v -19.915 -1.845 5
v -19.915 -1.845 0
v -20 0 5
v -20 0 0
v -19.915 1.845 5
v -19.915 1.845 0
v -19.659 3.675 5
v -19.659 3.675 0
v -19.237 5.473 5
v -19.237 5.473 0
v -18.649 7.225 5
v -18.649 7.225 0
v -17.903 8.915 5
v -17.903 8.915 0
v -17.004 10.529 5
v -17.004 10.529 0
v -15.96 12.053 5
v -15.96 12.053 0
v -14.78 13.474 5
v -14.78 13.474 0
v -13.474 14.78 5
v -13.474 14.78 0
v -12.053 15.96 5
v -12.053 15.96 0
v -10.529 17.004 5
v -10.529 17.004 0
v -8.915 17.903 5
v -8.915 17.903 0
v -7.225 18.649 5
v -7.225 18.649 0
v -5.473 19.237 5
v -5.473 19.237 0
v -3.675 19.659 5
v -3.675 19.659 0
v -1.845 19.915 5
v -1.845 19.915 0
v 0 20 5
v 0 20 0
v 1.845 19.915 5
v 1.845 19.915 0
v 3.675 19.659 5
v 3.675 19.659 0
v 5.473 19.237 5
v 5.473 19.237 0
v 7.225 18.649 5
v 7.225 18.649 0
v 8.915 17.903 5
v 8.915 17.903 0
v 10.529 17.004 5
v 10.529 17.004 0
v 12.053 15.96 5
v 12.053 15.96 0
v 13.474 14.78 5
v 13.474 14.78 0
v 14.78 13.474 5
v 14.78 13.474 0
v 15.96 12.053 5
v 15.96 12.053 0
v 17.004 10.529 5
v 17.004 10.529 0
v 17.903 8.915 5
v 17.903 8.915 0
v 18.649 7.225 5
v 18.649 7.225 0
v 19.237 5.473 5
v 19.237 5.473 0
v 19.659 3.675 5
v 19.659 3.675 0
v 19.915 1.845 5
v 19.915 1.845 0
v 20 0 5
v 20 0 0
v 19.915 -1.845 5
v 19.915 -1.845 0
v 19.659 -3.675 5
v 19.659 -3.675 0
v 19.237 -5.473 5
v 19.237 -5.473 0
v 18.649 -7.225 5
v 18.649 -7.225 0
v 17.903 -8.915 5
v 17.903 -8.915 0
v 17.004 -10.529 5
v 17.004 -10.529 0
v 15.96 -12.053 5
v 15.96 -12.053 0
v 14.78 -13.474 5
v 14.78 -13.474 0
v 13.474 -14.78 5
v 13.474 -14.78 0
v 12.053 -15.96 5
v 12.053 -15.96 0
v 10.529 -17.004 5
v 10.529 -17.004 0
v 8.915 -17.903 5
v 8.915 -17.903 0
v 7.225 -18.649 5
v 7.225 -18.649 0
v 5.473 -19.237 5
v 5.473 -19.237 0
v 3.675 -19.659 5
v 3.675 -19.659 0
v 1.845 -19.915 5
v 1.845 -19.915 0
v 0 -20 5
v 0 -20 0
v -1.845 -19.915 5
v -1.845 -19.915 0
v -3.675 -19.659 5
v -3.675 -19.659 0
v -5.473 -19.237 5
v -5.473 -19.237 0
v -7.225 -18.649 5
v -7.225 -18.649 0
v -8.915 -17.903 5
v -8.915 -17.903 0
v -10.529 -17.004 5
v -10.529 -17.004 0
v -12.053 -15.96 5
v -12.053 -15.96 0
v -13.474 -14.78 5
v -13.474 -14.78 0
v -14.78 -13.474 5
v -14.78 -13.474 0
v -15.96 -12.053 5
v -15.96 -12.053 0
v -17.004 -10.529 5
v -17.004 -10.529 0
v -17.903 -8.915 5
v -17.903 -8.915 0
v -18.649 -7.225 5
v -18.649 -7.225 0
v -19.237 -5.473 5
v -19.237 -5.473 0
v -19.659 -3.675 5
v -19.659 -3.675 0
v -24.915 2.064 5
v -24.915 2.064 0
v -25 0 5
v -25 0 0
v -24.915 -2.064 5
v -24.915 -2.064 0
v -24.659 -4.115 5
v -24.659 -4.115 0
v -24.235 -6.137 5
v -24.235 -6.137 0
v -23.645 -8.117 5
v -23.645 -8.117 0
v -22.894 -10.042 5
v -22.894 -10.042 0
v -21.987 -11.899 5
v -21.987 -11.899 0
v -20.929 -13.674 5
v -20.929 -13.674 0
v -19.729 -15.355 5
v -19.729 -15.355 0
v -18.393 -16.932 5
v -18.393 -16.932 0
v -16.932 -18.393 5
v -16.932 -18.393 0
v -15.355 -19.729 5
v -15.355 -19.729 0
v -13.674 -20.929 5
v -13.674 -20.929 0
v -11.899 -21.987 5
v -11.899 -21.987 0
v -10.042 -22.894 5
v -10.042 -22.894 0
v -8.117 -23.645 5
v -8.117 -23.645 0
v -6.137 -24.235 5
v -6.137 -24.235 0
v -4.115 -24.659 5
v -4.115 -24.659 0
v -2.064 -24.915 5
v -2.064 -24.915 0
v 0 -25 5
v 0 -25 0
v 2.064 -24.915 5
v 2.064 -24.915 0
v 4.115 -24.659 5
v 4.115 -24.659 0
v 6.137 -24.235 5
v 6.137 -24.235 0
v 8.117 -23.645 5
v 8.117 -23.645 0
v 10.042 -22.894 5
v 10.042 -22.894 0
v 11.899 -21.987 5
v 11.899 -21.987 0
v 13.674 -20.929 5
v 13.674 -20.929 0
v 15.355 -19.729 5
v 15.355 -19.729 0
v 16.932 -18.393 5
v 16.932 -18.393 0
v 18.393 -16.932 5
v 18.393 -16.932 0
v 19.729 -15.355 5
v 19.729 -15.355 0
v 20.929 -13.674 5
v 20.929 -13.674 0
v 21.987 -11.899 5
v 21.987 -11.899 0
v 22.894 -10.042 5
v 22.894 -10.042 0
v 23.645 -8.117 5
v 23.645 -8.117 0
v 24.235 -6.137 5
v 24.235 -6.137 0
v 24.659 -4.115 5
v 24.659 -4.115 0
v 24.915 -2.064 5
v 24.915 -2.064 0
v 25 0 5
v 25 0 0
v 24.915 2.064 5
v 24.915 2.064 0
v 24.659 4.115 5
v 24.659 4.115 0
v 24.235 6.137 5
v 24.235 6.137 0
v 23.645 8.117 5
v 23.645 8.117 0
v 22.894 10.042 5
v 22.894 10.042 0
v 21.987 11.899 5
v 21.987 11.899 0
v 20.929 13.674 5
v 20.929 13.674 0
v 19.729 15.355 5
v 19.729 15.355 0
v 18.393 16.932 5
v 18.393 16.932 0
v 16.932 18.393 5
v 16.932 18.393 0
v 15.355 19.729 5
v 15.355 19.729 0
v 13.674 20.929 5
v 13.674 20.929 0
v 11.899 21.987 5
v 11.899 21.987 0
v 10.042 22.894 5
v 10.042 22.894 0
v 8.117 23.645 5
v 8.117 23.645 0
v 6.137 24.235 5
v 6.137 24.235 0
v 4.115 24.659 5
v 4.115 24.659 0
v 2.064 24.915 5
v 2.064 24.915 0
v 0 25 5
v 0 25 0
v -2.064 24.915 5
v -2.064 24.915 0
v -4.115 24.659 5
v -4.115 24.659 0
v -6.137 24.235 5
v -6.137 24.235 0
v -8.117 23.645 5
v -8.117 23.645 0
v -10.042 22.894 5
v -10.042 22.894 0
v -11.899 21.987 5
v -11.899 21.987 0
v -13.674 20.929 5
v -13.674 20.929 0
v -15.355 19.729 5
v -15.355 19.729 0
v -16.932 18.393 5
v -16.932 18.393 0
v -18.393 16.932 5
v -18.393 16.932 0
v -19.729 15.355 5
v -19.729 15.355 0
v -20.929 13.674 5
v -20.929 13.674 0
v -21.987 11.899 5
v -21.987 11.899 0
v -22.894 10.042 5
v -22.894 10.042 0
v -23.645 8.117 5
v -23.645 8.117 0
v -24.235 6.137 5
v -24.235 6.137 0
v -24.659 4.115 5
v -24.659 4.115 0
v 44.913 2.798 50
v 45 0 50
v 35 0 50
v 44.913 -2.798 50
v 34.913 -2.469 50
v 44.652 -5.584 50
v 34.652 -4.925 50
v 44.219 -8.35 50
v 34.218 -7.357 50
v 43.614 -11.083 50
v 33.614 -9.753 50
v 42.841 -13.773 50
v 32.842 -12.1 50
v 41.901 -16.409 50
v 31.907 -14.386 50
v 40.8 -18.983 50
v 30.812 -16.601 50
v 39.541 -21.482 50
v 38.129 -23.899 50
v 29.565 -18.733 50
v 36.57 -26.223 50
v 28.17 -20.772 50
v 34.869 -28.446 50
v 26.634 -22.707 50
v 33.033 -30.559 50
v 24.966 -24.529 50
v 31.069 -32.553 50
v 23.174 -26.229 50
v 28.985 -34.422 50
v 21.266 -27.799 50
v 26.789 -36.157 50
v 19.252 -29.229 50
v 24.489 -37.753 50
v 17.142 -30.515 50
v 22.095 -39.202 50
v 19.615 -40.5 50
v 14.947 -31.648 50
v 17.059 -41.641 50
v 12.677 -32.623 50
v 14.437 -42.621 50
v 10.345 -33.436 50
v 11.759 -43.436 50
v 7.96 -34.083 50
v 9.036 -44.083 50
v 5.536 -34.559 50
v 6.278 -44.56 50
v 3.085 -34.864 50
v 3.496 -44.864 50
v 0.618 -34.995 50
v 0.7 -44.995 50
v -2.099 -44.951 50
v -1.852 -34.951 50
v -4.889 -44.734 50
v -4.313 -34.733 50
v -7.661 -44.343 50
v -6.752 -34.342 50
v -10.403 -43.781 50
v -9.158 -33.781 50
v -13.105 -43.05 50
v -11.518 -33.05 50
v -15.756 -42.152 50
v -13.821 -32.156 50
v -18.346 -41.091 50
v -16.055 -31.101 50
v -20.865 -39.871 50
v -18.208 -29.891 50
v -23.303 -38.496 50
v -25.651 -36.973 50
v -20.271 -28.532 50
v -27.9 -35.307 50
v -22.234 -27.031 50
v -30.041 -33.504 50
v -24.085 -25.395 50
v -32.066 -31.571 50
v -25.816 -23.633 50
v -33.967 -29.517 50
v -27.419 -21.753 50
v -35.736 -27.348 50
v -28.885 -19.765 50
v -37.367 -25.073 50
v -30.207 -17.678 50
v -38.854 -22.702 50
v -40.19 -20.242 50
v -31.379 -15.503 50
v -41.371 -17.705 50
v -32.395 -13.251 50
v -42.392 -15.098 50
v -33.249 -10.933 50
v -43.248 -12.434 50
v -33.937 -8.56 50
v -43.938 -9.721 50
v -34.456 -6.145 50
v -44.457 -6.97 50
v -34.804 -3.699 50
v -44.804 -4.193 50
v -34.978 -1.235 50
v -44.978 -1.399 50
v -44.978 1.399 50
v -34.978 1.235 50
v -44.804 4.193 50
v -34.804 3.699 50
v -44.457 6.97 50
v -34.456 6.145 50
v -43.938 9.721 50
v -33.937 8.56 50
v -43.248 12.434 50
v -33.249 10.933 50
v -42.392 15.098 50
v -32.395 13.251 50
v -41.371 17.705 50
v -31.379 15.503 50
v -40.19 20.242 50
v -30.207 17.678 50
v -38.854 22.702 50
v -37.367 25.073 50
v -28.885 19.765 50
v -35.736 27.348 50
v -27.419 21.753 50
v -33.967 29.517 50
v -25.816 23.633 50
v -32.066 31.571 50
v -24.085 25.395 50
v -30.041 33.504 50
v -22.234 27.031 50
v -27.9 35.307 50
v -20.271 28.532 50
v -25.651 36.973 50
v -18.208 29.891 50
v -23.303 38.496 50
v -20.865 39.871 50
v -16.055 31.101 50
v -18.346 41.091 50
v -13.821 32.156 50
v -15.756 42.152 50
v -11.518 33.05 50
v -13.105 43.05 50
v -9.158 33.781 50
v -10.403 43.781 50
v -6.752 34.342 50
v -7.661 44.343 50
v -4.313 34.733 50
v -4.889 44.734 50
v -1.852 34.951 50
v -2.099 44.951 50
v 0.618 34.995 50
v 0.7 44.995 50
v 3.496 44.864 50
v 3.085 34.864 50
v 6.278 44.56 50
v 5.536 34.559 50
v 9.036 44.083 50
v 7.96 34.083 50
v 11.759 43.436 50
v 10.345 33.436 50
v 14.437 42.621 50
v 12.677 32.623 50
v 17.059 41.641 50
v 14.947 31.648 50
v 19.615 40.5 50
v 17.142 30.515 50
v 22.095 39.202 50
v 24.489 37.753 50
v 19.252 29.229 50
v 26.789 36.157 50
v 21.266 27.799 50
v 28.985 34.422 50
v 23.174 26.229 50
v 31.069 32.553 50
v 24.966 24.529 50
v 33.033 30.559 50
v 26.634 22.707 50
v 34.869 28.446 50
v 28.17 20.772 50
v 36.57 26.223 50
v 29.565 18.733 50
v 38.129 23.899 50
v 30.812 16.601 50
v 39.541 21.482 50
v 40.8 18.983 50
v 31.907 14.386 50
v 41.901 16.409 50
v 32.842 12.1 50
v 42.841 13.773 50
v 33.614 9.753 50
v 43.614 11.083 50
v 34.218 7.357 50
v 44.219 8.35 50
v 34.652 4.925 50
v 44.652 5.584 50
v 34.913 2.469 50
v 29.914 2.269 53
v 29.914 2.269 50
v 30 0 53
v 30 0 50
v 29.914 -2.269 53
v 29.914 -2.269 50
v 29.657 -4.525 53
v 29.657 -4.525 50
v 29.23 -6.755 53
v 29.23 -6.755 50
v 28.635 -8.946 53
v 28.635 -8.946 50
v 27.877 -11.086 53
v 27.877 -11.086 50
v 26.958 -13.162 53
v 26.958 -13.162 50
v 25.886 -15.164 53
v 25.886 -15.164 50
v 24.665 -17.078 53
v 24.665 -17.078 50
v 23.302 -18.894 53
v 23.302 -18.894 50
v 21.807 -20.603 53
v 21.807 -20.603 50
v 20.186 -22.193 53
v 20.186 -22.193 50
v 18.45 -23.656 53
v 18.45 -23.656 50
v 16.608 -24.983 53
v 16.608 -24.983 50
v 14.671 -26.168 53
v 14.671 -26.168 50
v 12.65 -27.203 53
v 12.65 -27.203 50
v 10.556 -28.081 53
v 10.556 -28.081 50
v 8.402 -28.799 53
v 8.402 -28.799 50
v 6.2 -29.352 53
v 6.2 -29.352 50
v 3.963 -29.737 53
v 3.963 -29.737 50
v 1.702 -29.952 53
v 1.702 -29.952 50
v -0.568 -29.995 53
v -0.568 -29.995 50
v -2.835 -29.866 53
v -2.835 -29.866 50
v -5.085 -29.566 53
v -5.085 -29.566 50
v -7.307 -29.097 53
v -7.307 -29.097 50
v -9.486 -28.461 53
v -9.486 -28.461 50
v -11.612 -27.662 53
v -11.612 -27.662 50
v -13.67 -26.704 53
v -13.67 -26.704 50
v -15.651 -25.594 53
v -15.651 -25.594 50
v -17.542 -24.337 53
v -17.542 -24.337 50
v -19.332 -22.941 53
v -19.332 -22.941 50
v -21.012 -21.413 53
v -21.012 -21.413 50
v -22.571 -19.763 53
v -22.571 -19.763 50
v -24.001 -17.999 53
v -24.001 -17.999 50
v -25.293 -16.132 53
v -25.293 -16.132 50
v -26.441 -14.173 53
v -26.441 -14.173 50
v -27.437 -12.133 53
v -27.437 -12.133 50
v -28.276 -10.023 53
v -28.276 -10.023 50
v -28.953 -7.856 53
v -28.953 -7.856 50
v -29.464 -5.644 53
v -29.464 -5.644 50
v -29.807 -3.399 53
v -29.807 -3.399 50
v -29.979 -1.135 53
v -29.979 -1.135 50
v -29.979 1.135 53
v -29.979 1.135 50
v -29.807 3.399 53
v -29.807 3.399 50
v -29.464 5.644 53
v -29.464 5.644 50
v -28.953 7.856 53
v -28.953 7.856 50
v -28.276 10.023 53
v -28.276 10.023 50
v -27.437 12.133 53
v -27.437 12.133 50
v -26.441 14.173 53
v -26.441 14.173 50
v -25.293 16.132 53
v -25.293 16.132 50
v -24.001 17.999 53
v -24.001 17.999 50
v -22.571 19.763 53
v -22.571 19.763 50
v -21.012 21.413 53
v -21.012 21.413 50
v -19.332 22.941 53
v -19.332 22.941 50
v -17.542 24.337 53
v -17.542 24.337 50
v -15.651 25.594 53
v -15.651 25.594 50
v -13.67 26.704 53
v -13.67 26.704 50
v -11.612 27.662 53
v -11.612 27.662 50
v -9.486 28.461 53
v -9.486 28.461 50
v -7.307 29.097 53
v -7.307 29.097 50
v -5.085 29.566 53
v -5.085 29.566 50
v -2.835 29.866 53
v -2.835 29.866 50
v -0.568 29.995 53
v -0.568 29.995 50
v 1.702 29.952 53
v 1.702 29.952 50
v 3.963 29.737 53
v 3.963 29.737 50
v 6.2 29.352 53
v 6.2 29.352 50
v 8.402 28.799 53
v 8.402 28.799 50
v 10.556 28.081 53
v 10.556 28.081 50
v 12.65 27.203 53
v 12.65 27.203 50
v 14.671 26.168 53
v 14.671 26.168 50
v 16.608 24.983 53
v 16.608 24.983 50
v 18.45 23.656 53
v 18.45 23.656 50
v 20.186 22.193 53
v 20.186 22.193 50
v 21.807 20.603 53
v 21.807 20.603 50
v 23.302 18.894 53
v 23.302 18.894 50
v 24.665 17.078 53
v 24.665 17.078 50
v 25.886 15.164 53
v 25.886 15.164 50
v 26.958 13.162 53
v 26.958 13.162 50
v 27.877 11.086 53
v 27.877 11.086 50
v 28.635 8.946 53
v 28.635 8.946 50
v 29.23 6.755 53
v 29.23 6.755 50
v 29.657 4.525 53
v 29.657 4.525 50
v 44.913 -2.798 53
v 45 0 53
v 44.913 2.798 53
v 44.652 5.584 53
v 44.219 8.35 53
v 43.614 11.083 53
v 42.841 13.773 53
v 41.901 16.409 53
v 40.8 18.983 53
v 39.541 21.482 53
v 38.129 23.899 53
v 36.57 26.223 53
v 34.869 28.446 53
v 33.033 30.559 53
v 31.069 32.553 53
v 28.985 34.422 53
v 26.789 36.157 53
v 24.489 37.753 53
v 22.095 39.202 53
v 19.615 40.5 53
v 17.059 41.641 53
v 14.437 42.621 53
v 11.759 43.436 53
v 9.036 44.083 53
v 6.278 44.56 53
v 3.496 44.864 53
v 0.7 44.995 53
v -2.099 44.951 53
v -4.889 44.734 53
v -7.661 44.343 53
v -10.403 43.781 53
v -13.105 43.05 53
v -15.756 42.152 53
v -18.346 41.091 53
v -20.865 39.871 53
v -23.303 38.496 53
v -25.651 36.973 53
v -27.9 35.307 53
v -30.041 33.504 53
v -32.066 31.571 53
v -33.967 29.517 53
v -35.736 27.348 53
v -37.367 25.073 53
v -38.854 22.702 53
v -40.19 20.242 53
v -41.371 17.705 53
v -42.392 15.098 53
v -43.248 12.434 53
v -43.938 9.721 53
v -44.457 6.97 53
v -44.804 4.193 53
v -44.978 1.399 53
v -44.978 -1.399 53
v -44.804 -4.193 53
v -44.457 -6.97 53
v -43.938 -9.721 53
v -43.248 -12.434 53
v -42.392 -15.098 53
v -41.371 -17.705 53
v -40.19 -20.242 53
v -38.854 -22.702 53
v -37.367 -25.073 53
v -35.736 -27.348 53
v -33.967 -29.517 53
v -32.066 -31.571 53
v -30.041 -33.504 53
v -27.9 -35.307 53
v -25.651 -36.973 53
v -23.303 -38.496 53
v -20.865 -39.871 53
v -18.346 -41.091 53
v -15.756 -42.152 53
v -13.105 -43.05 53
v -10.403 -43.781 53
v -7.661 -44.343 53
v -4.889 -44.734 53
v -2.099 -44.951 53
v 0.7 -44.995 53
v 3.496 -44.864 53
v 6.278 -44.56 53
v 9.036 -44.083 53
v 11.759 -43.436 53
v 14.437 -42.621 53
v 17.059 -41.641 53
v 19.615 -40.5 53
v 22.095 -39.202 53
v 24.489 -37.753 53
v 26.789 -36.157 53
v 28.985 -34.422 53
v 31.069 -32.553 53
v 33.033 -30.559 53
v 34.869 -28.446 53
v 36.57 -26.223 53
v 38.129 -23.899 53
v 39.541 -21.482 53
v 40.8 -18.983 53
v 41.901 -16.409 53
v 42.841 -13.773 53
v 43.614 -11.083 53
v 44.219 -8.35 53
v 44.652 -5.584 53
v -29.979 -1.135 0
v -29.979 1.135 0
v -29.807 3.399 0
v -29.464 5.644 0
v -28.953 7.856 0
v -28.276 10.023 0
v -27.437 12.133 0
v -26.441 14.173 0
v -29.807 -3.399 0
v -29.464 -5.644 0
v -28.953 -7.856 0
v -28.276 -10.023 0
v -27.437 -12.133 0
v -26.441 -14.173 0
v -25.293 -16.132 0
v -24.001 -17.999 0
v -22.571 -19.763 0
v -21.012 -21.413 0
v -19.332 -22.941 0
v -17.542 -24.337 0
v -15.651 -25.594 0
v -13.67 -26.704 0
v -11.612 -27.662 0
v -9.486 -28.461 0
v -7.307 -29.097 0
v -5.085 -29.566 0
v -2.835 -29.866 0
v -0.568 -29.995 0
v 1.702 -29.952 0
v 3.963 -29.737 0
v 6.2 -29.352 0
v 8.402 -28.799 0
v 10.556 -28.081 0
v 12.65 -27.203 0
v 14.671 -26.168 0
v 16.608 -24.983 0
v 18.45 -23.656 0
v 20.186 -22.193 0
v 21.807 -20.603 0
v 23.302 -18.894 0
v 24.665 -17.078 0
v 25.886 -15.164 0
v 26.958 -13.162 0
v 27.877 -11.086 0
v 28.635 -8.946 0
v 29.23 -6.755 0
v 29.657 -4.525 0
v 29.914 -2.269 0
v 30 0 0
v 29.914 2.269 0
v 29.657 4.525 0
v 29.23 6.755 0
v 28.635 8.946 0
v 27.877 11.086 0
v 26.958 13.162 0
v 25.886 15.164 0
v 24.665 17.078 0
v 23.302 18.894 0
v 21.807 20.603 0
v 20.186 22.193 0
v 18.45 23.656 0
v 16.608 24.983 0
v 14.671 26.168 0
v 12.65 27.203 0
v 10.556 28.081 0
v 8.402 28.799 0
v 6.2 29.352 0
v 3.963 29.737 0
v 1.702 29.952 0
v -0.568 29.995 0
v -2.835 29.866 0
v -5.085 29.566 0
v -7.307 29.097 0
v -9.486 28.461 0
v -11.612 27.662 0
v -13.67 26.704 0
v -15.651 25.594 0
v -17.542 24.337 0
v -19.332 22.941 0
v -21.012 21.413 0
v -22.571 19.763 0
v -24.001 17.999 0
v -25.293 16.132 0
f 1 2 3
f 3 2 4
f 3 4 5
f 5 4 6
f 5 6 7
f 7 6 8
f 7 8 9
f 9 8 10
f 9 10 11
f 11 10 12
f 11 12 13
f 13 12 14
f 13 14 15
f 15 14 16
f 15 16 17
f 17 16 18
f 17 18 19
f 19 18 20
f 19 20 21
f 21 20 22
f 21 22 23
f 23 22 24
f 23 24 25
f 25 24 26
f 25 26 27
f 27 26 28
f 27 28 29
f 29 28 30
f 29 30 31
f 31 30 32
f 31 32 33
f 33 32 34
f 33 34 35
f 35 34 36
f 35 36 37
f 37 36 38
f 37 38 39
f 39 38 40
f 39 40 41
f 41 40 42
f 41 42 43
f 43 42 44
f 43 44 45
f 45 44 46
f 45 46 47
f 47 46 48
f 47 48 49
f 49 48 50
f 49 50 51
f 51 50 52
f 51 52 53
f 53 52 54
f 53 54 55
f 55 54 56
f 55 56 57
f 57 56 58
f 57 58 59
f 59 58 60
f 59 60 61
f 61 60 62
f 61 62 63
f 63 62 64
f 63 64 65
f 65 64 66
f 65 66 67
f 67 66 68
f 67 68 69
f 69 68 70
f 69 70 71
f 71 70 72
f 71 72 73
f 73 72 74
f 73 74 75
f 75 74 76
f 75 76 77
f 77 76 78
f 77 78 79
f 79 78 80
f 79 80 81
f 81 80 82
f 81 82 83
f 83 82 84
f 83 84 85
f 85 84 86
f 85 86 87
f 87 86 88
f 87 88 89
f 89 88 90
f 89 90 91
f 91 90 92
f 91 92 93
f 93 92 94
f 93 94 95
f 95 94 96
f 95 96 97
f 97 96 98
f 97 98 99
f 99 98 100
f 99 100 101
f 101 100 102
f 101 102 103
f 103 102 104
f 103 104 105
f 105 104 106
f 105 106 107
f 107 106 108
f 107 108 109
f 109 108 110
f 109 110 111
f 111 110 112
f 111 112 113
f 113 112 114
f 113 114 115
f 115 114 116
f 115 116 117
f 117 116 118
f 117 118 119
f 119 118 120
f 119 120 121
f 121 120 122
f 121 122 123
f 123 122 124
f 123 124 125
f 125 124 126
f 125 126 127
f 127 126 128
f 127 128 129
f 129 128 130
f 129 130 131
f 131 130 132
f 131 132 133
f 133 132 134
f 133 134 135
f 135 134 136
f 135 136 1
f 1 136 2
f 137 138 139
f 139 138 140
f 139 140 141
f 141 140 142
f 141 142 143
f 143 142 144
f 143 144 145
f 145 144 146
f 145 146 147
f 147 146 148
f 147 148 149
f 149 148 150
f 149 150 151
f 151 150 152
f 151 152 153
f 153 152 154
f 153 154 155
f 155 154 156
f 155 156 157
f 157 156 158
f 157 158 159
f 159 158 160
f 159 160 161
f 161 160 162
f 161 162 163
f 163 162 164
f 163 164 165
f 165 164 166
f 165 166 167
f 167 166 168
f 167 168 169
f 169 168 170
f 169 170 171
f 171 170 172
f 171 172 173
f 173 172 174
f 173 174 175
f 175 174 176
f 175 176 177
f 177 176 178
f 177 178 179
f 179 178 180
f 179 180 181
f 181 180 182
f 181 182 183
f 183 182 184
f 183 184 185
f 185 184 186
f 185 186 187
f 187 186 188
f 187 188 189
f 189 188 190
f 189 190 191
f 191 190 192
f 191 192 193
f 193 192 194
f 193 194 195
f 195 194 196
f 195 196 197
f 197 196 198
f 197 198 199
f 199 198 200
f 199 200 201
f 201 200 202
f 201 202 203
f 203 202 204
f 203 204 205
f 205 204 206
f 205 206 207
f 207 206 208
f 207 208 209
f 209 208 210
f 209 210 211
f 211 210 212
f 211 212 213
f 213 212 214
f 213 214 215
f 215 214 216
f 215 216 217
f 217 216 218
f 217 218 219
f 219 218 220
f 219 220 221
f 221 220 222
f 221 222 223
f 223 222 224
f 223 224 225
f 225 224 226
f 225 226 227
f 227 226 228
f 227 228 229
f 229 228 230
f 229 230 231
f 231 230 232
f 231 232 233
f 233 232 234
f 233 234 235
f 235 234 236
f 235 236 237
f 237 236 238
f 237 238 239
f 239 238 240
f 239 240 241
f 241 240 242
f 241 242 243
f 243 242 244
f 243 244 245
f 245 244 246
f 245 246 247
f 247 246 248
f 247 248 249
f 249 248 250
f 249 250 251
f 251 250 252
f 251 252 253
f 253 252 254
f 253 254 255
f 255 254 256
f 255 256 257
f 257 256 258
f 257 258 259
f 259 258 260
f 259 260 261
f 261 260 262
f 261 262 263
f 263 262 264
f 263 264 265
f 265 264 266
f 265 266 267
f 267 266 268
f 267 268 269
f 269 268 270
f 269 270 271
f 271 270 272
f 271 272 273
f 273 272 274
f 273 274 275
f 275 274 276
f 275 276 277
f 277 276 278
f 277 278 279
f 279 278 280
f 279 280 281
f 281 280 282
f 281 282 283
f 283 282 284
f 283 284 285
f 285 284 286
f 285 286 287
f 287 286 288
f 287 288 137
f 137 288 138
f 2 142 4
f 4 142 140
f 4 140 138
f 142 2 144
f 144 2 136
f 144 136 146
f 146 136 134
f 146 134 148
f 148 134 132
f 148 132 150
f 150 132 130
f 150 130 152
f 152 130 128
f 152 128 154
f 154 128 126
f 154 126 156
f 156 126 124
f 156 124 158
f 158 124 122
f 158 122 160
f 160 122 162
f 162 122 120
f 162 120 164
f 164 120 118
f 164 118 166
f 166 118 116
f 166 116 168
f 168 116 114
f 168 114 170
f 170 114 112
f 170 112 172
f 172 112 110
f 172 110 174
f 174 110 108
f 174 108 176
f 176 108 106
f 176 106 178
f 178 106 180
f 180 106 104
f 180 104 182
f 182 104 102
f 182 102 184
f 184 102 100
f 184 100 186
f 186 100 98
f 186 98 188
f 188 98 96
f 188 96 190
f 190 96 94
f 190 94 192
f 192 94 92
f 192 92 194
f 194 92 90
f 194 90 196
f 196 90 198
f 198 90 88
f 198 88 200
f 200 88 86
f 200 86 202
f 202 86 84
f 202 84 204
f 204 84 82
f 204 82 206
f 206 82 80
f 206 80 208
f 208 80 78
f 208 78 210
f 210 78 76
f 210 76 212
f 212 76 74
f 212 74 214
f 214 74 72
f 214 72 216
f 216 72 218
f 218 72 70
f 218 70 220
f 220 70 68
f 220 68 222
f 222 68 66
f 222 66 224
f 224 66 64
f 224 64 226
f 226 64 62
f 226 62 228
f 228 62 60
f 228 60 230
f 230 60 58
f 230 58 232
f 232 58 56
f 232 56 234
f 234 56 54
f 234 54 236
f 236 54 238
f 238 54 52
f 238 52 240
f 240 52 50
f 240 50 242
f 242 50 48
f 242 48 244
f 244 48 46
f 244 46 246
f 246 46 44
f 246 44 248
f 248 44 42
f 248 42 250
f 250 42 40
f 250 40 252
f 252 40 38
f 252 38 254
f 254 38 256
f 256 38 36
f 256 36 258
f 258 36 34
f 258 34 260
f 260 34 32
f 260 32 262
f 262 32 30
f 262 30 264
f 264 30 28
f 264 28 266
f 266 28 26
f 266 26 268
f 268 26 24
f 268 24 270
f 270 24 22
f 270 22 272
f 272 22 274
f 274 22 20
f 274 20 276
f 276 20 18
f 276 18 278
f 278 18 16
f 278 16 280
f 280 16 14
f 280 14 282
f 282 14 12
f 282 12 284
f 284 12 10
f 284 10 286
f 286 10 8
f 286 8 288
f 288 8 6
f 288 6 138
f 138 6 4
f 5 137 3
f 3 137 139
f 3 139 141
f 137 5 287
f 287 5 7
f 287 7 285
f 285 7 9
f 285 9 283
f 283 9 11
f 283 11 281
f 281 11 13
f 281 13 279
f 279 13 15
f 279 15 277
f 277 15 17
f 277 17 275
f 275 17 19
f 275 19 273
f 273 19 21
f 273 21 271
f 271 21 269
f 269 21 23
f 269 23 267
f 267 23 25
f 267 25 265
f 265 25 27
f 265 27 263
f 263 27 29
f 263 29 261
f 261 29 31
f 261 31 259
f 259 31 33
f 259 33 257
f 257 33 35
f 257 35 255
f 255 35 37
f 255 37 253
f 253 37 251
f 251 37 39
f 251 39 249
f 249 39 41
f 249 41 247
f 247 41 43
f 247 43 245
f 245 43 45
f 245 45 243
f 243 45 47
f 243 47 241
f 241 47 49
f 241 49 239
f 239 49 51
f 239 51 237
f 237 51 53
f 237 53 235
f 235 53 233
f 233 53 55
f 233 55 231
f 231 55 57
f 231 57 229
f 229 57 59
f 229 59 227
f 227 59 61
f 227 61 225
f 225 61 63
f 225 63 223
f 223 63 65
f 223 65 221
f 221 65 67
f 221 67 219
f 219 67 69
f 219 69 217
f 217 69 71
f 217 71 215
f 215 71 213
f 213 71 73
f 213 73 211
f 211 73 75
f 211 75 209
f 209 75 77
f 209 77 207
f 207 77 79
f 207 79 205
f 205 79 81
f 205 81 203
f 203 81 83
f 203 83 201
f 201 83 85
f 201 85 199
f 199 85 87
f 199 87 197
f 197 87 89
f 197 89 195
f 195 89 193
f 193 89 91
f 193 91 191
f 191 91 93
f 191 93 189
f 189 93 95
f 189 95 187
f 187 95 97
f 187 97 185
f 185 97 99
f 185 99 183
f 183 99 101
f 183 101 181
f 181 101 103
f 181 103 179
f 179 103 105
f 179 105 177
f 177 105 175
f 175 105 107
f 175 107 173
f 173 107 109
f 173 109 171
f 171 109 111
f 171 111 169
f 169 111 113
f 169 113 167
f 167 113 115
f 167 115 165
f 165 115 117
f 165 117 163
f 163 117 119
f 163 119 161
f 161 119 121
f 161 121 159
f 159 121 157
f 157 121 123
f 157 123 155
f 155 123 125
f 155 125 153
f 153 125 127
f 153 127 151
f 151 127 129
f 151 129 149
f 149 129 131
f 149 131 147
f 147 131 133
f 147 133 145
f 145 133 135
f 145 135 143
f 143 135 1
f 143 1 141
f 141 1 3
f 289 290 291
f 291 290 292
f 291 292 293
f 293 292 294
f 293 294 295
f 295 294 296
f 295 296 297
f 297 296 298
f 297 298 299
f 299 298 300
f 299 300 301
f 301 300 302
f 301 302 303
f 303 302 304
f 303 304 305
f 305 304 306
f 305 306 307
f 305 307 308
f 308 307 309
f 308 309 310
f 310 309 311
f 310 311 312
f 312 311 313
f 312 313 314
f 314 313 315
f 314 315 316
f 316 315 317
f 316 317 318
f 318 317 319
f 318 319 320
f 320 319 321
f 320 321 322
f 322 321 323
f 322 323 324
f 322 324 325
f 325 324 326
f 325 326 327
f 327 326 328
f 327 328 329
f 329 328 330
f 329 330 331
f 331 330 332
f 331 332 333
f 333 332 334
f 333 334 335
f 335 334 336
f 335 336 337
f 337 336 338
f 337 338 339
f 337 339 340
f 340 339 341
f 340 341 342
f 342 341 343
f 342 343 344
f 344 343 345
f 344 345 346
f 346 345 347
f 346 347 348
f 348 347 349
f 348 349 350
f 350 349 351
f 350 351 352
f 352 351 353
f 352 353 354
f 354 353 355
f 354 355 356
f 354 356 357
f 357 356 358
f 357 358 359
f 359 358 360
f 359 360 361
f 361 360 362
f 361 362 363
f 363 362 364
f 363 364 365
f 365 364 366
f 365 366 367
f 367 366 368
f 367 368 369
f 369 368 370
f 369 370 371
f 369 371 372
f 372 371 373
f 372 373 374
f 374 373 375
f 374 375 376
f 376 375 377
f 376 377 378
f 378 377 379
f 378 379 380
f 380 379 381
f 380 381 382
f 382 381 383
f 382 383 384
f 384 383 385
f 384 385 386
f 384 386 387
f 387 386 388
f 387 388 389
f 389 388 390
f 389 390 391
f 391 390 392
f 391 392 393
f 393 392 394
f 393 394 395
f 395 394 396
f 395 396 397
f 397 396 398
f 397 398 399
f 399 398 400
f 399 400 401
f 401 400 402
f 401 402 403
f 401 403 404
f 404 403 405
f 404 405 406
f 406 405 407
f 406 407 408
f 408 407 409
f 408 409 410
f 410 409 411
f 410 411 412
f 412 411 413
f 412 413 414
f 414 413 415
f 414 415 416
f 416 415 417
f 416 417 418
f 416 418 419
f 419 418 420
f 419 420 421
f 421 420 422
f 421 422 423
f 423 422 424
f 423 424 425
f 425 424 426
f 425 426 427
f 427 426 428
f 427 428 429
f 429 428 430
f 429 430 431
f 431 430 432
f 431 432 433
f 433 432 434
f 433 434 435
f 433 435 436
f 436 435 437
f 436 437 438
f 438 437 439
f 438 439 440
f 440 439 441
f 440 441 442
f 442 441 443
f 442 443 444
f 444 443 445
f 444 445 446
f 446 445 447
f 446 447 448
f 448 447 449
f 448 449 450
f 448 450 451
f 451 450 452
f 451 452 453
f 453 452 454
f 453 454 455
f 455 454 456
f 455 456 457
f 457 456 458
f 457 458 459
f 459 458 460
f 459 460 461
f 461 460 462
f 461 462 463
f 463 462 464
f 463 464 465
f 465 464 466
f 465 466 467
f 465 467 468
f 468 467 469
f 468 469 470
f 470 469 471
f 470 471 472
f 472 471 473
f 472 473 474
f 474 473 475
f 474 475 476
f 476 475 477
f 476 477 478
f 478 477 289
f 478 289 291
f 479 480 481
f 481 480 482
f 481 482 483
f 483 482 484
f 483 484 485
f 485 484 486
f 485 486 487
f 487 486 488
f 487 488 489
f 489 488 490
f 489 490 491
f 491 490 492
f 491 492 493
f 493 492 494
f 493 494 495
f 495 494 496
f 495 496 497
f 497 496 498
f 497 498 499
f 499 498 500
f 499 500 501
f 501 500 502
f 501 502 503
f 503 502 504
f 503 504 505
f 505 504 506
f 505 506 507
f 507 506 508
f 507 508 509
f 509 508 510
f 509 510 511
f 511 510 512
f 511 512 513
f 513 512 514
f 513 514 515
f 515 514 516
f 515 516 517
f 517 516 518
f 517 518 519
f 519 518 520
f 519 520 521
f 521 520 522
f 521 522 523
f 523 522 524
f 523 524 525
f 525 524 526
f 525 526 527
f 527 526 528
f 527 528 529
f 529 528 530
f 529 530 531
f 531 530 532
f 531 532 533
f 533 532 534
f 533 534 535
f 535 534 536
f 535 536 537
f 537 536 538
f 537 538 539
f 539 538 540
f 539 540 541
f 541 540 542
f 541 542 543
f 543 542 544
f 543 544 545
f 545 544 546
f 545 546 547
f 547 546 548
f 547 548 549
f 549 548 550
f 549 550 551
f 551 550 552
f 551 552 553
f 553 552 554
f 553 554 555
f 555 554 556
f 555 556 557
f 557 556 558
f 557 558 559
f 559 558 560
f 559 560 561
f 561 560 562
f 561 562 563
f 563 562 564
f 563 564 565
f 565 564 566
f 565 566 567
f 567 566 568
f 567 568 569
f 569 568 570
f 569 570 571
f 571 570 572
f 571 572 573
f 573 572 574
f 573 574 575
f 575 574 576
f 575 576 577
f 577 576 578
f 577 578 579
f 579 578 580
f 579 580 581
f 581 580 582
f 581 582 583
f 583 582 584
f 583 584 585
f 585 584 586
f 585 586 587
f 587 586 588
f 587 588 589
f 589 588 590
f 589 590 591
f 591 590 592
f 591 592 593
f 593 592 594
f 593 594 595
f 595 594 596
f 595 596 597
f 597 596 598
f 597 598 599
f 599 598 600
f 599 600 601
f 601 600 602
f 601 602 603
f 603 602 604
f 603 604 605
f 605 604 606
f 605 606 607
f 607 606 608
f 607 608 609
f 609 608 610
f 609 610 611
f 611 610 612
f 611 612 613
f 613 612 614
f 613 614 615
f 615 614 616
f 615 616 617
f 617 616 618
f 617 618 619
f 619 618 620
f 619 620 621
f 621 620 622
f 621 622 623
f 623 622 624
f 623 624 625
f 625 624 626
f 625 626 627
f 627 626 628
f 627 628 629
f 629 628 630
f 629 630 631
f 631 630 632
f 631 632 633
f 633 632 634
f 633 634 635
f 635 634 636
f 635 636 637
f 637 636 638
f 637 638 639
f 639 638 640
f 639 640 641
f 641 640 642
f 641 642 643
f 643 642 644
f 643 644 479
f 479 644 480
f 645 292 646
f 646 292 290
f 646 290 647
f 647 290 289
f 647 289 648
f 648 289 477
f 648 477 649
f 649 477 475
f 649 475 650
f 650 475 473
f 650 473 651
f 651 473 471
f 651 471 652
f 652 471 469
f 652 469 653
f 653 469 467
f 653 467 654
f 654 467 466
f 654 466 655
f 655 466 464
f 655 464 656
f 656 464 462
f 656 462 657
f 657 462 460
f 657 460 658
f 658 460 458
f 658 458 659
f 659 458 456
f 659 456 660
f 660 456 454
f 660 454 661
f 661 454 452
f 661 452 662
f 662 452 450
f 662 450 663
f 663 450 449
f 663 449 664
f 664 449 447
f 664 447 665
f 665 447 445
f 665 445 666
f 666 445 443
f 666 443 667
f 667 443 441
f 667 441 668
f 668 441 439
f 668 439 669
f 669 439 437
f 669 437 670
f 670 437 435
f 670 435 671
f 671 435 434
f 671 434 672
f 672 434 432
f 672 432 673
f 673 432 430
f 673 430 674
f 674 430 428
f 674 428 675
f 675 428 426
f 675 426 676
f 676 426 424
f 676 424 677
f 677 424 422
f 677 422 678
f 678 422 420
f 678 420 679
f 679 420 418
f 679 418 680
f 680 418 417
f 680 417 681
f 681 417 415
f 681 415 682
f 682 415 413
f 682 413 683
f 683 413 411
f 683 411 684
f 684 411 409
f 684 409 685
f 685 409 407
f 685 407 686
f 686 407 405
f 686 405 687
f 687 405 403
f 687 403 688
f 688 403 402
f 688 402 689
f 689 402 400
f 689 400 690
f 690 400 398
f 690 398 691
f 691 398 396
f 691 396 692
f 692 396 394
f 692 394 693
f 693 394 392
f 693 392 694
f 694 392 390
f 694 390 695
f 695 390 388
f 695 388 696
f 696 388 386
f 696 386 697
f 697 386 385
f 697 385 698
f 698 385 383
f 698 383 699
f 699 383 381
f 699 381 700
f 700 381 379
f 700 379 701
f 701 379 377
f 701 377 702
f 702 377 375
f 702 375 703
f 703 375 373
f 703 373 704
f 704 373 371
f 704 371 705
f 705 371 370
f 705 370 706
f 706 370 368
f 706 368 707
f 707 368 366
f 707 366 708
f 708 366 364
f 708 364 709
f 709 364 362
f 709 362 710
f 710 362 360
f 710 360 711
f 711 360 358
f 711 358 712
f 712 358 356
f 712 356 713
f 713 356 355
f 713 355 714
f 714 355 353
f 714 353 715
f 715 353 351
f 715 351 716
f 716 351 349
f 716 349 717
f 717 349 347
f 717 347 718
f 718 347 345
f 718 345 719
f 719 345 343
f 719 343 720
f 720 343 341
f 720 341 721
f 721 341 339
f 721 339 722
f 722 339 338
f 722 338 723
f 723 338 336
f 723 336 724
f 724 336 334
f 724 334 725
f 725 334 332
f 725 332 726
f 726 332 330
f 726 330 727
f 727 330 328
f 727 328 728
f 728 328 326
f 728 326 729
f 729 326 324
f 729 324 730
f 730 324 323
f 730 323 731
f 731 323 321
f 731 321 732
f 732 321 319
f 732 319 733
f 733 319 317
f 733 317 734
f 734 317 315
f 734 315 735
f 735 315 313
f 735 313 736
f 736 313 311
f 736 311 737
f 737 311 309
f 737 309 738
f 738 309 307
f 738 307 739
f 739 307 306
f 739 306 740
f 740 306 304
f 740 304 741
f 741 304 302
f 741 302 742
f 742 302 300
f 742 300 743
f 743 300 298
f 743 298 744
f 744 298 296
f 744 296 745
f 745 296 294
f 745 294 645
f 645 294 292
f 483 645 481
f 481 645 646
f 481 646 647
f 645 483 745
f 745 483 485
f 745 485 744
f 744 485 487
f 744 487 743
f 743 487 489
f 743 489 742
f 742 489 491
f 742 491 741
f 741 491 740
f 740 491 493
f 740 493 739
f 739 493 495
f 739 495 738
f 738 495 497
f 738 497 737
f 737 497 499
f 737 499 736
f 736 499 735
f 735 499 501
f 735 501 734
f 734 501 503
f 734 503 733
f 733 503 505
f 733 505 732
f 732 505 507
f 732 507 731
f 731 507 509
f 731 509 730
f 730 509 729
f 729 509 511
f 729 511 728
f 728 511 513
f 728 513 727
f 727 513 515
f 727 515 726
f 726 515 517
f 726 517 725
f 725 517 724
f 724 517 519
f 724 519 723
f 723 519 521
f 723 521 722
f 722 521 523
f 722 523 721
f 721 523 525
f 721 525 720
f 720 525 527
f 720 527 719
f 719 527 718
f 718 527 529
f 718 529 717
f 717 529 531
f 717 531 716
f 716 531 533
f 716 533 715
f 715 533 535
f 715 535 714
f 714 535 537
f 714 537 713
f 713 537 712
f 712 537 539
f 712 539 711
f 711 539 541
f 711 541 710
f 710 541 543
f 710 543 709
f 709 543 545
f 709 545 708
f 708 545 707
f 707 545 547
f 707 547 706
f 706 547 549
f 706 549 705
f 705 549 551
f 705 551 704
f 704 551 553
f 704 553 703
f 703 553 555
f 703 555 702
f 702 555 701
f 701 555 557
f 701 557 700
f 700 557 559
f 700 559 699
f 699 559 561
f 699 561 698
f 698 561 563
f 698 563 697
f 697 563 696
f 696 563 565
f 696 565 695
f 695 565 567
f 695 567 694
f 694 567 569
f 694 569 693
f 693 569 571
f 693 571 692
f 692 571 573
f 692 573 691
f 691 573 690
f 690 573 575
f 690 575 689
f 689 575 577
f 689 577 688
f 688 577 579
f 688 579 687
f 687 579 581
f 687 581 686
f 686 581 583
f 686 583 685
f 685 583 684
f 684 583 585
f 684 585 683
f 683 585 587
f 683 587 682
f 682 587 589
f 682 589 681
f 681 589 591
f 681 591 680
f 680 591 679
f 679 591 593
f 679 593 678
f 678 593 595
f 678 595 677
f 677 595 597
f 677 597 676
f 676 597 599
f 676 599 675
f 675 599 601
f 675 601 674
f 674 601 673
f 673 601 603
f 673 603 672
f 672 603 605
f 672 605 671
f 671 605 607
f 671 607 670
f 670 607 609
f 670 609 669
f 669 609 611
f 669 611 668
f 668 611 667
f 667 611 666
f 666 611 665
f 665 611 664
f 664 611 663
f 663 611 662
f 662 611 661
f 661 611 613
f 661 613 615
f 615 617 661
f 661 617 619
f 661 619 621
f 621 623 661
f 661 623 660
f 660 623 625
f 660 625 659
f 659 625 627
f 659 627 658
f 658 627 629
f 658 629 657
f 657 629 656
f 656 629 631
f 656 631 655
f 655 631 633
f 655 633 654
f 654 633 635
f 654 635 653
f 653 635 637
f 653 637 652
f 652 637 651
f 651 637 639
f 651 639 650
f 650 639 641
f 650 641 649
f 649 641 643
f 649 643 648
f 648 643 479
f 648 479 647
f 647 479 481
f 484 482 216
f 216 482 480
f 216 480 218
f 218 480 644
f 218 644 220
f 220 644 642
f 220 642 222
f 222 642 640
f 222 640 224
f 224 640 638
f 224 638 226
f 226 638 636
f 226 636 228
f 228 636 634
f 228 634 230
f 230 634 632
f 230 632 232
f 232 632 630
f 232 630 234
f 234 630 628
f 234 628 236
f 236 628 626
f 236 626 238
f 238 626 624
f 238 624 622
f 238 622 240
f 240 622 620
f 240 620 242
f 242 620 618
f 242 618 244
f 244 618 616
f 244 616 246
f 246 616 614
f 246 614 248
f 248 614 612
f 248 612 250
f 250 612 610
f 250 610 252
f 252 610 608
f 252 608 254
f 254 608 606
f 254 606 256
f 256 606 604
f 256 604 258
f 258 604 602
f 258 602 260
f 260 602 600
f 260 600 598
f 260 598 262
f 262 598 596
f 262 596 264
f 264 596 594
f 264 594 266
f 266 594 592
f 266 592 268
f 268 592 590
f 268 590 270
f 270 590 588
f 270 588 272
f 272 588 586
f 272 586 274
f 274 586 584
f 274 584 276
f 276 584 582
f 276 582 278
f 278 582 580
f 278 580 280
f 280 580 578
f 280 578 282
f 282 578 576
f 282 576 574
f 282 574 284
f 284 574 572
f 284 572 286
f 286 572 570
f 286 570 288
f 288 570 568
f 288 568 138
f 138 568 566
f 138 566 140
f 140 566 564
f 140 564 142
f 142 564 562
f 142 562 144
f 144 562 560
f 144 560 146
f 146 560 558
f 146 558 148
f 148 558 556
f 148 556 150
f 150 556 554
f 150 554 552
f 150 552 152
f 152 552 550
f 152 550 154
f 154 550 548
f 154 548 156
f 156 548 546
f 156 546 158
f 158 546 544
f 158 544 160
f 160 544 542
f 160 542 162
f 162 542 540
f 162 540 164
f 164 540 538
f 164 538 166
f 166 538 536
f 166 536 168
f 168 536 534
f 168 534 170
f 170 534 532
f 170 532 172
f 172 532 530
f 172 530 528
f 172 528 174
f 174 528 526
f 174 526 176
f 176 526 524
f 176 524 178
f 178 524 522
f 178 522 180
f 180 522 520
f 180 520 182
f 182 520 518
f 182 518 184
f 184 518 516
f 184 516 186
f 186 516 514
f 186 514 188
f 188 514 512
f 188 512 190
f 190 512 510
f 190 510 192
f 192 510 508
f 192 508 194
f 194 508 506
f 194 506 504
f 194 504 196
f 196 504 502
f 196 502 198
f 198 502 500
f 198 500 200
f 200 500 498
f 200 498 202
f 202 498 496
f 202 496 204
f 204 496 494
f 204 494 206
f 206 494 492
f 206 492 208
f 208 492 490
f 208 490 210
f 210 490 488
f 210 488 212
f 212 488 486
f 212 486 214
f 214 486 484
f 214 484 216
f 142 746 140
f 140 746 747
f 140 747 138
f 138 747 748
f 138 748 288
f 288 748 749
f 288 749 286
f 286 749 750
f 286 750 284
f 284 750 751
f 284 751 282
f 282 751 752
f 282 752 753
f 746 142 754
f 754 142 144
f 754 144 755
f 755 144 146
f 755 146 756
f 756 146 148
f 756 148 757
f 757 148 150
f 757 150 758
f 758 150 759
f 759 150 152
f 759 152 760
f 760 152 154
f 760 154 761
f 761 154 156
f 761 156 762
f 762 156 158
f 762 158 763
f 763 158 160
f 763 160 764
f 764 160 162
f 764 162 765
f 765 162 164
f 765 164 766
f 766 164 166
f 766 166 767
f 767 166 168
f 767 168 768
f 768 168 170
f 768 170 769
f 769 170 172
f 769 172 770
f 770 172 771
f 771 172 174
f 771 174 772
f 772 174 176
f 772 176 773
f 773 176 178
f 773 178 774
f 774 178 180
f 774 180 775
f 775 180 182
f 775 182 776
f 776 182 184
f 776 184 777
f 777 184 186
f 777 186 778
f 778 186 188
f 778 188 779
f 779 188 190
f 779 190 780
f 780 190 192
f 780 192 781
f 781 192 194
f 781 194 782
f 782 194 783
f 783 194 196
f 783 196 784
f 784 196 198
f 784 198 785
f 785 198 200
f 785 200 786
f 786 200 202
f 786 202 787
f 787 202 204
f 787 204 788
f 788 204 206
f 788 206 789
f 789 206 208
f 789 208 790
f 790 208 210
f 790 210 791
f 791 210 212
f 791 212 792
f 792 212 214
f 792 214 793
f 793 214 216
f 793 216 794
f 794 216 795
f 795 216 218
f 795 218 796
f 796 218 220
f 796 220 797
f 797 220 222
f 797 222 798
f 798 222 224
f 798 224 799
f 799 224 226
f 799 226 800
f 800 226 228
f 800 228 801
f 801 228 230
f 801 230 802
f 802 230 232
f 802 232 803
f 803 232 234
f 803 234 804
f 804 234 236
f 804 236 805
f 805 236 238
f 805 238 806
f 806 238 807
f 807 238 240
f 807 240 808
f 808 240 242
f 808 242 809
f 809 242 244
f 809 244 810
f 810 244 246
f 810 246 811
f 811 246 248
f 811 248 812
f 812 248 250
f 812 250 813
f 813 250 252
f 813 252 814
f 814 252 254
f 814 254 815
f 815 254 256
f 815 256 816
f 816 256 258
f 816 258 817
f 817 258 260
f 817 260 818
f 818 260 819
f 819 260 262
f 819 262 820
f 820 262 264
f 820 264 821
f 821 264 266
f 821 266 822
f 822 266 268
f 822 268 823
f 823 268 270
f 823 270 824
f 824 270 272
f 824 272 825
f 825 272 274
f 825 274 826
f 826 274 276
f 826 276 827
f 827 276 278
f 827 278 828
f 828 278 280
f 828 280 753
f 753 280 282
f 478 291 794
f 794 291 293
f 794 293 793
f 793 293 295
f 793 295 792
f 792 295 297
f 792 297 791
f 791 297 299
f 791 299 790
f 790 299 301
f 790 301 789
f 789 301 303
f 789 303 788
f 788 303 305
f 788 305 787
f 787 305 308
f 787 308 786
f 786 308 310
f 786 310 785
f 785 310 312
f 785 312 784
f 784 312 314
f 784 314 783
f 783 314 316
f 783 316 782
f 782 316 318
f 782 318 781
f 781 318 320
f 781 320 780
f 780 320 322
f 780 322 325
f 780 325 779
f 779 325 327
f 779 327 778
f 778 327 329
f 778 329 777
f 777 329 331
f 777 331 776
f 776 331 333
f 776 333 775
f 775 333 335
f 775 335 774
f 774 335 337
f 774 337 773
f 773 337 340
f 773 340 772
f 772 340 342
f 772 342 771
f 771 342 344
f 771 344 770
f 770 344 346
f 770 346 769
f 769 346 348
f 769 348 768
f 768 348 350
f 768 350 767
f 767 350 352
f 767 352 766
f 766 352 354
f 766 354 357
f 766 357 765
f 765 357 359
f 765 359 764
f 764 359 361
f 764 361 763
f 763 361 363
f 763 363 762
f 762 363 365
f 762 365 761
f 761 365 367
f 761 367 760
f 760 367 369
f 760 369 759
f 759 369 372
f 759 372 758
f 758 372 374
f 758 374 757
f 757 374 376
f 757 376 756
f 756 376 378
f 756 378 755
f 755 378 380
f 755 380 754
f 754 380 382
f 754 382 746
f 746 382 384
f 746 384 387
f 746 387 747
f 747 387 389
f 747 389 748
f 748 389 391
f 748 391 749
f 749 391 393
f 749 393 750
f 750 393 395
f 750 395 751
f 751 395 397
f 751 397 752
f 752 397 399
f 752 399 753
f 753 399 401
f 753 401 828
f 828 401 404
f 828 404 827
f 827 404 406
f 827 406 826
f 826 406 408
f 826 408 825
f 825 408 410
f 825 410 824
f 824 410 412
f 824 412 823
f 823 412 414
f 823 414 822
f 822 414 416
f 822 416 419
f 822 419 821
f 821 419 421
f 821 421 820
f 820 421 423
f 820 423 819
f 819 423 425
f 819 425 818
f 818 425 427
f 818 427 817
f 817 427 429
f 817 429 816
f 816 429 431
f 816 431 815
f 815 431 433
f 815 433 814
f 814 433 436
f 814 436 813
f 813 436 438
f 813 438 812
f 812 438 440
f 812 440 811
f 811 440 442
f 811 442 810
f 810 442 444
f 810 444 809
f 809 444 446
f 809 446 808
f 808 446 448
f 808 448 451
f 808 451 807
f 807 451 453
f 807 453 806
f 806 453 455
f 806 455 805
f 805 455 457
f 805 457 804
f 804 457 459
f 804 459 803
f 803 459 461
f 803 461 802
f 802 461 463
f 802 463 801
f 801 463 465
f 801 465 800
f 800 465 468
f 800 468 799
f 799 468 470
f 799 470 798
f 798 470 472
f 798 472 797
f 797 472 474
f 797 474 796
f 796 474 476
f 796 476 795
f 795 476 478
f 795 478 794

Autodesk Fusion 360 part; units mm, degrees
sketch "Sketch1" plane through (0, 0, 0) normal (0, 0, 1) x (1, 0, 0)
  circle A0 centre (0, 0) radius 30
  circle A1 centre (0, 0) radius 25
  dimension "d1" = 60
  dimension "d7" = 50
ref_plane "WorkPlane1" through (0, 0, 50) normal (0, 0, 1) x (1, 0, 0)
ref_plane "WorkPlane2" through (0, 0, 50) normal (0, 0, 1) x (1, 0, 0)
ref_plane "WorkPlane3" through (0, 0, 50) normal (0, 0, 1) x (1, 0, 0)
sketch "Sketch7" plane through (0, 0, 50) normal (0, 0, 1) x (1, 0, 0)
  circle A0 centre (0, 0) radius 35
  circle A1 centre (0, 0) radius 30
  dimension "d6" = 70
  dimension "d8" = 60
loft "Loft1" add profiles "Sketch7", "Sketch1" section 1 section 2
sketch "Sketch8" plane through (0, 0, 50) normal (0, 0, 1) x (-1, 0, 0)
  circle A0 centre (0, 0) radius 35
  circle A1 centre (0, 0) radius 30
  dimension "d9" = 60
sketch "Sketch9" plane through (0, 0, 0) normal (0, 0, -1) x (1, 0, 0)
  circle A0 centre (0, 0) radius 30
  circle A1 centre (0, 0) radius 25
loft "Loft2" cut profiles "Sketch8", "Sketch9" section 1 contours A1 section 2 contours A1
sketch "Sketch11" plane through (0, 0, 50) normal (0, 0, 1) x (-1, 0, 0)
  circle A0 centre (0, 0) radius 30
  circle A1 centre (0, 0) radius 35
  circle A2 centre (0, 0) radius 30
  circle A3 centre (0, 0) radius 45
  dimension "d14" = 90
extrude "Extrude2" add sketch "Sketch11" along normal blind 3 contours A1 | A3
sketch "Sketch12" plane through (0, 0, 0) normal (0, 0, -1) x (1, 0, 0)
  circle A0 centre (0, 0) radius 25
  circle A1 centre (0, 0) radius 30
  circle A2 centre (0, 0) radius 25
  circle A3 centre (0, 0) radius 20
  dimension "d17" = 40
extrude "Extrude3" add sketch "Sketch12" against normal blind 5 contours A0 A2
sketch "Sketch10" plane through (0, 0, 50) normal (0, 0, 1) x (-1, 0, 0)
  circle A0 centre (0, 0) radius 30
  circle A1 centre (0, 0) radius 35
  circle A2 centre (0, 0) radius 45
  circle A3 centre (0, 0) radius 35
  dimension "d10" = 90
  dimension "d13" = 70
extrude "Extrude1" [rolled back] along distance 3 taper angle 0
